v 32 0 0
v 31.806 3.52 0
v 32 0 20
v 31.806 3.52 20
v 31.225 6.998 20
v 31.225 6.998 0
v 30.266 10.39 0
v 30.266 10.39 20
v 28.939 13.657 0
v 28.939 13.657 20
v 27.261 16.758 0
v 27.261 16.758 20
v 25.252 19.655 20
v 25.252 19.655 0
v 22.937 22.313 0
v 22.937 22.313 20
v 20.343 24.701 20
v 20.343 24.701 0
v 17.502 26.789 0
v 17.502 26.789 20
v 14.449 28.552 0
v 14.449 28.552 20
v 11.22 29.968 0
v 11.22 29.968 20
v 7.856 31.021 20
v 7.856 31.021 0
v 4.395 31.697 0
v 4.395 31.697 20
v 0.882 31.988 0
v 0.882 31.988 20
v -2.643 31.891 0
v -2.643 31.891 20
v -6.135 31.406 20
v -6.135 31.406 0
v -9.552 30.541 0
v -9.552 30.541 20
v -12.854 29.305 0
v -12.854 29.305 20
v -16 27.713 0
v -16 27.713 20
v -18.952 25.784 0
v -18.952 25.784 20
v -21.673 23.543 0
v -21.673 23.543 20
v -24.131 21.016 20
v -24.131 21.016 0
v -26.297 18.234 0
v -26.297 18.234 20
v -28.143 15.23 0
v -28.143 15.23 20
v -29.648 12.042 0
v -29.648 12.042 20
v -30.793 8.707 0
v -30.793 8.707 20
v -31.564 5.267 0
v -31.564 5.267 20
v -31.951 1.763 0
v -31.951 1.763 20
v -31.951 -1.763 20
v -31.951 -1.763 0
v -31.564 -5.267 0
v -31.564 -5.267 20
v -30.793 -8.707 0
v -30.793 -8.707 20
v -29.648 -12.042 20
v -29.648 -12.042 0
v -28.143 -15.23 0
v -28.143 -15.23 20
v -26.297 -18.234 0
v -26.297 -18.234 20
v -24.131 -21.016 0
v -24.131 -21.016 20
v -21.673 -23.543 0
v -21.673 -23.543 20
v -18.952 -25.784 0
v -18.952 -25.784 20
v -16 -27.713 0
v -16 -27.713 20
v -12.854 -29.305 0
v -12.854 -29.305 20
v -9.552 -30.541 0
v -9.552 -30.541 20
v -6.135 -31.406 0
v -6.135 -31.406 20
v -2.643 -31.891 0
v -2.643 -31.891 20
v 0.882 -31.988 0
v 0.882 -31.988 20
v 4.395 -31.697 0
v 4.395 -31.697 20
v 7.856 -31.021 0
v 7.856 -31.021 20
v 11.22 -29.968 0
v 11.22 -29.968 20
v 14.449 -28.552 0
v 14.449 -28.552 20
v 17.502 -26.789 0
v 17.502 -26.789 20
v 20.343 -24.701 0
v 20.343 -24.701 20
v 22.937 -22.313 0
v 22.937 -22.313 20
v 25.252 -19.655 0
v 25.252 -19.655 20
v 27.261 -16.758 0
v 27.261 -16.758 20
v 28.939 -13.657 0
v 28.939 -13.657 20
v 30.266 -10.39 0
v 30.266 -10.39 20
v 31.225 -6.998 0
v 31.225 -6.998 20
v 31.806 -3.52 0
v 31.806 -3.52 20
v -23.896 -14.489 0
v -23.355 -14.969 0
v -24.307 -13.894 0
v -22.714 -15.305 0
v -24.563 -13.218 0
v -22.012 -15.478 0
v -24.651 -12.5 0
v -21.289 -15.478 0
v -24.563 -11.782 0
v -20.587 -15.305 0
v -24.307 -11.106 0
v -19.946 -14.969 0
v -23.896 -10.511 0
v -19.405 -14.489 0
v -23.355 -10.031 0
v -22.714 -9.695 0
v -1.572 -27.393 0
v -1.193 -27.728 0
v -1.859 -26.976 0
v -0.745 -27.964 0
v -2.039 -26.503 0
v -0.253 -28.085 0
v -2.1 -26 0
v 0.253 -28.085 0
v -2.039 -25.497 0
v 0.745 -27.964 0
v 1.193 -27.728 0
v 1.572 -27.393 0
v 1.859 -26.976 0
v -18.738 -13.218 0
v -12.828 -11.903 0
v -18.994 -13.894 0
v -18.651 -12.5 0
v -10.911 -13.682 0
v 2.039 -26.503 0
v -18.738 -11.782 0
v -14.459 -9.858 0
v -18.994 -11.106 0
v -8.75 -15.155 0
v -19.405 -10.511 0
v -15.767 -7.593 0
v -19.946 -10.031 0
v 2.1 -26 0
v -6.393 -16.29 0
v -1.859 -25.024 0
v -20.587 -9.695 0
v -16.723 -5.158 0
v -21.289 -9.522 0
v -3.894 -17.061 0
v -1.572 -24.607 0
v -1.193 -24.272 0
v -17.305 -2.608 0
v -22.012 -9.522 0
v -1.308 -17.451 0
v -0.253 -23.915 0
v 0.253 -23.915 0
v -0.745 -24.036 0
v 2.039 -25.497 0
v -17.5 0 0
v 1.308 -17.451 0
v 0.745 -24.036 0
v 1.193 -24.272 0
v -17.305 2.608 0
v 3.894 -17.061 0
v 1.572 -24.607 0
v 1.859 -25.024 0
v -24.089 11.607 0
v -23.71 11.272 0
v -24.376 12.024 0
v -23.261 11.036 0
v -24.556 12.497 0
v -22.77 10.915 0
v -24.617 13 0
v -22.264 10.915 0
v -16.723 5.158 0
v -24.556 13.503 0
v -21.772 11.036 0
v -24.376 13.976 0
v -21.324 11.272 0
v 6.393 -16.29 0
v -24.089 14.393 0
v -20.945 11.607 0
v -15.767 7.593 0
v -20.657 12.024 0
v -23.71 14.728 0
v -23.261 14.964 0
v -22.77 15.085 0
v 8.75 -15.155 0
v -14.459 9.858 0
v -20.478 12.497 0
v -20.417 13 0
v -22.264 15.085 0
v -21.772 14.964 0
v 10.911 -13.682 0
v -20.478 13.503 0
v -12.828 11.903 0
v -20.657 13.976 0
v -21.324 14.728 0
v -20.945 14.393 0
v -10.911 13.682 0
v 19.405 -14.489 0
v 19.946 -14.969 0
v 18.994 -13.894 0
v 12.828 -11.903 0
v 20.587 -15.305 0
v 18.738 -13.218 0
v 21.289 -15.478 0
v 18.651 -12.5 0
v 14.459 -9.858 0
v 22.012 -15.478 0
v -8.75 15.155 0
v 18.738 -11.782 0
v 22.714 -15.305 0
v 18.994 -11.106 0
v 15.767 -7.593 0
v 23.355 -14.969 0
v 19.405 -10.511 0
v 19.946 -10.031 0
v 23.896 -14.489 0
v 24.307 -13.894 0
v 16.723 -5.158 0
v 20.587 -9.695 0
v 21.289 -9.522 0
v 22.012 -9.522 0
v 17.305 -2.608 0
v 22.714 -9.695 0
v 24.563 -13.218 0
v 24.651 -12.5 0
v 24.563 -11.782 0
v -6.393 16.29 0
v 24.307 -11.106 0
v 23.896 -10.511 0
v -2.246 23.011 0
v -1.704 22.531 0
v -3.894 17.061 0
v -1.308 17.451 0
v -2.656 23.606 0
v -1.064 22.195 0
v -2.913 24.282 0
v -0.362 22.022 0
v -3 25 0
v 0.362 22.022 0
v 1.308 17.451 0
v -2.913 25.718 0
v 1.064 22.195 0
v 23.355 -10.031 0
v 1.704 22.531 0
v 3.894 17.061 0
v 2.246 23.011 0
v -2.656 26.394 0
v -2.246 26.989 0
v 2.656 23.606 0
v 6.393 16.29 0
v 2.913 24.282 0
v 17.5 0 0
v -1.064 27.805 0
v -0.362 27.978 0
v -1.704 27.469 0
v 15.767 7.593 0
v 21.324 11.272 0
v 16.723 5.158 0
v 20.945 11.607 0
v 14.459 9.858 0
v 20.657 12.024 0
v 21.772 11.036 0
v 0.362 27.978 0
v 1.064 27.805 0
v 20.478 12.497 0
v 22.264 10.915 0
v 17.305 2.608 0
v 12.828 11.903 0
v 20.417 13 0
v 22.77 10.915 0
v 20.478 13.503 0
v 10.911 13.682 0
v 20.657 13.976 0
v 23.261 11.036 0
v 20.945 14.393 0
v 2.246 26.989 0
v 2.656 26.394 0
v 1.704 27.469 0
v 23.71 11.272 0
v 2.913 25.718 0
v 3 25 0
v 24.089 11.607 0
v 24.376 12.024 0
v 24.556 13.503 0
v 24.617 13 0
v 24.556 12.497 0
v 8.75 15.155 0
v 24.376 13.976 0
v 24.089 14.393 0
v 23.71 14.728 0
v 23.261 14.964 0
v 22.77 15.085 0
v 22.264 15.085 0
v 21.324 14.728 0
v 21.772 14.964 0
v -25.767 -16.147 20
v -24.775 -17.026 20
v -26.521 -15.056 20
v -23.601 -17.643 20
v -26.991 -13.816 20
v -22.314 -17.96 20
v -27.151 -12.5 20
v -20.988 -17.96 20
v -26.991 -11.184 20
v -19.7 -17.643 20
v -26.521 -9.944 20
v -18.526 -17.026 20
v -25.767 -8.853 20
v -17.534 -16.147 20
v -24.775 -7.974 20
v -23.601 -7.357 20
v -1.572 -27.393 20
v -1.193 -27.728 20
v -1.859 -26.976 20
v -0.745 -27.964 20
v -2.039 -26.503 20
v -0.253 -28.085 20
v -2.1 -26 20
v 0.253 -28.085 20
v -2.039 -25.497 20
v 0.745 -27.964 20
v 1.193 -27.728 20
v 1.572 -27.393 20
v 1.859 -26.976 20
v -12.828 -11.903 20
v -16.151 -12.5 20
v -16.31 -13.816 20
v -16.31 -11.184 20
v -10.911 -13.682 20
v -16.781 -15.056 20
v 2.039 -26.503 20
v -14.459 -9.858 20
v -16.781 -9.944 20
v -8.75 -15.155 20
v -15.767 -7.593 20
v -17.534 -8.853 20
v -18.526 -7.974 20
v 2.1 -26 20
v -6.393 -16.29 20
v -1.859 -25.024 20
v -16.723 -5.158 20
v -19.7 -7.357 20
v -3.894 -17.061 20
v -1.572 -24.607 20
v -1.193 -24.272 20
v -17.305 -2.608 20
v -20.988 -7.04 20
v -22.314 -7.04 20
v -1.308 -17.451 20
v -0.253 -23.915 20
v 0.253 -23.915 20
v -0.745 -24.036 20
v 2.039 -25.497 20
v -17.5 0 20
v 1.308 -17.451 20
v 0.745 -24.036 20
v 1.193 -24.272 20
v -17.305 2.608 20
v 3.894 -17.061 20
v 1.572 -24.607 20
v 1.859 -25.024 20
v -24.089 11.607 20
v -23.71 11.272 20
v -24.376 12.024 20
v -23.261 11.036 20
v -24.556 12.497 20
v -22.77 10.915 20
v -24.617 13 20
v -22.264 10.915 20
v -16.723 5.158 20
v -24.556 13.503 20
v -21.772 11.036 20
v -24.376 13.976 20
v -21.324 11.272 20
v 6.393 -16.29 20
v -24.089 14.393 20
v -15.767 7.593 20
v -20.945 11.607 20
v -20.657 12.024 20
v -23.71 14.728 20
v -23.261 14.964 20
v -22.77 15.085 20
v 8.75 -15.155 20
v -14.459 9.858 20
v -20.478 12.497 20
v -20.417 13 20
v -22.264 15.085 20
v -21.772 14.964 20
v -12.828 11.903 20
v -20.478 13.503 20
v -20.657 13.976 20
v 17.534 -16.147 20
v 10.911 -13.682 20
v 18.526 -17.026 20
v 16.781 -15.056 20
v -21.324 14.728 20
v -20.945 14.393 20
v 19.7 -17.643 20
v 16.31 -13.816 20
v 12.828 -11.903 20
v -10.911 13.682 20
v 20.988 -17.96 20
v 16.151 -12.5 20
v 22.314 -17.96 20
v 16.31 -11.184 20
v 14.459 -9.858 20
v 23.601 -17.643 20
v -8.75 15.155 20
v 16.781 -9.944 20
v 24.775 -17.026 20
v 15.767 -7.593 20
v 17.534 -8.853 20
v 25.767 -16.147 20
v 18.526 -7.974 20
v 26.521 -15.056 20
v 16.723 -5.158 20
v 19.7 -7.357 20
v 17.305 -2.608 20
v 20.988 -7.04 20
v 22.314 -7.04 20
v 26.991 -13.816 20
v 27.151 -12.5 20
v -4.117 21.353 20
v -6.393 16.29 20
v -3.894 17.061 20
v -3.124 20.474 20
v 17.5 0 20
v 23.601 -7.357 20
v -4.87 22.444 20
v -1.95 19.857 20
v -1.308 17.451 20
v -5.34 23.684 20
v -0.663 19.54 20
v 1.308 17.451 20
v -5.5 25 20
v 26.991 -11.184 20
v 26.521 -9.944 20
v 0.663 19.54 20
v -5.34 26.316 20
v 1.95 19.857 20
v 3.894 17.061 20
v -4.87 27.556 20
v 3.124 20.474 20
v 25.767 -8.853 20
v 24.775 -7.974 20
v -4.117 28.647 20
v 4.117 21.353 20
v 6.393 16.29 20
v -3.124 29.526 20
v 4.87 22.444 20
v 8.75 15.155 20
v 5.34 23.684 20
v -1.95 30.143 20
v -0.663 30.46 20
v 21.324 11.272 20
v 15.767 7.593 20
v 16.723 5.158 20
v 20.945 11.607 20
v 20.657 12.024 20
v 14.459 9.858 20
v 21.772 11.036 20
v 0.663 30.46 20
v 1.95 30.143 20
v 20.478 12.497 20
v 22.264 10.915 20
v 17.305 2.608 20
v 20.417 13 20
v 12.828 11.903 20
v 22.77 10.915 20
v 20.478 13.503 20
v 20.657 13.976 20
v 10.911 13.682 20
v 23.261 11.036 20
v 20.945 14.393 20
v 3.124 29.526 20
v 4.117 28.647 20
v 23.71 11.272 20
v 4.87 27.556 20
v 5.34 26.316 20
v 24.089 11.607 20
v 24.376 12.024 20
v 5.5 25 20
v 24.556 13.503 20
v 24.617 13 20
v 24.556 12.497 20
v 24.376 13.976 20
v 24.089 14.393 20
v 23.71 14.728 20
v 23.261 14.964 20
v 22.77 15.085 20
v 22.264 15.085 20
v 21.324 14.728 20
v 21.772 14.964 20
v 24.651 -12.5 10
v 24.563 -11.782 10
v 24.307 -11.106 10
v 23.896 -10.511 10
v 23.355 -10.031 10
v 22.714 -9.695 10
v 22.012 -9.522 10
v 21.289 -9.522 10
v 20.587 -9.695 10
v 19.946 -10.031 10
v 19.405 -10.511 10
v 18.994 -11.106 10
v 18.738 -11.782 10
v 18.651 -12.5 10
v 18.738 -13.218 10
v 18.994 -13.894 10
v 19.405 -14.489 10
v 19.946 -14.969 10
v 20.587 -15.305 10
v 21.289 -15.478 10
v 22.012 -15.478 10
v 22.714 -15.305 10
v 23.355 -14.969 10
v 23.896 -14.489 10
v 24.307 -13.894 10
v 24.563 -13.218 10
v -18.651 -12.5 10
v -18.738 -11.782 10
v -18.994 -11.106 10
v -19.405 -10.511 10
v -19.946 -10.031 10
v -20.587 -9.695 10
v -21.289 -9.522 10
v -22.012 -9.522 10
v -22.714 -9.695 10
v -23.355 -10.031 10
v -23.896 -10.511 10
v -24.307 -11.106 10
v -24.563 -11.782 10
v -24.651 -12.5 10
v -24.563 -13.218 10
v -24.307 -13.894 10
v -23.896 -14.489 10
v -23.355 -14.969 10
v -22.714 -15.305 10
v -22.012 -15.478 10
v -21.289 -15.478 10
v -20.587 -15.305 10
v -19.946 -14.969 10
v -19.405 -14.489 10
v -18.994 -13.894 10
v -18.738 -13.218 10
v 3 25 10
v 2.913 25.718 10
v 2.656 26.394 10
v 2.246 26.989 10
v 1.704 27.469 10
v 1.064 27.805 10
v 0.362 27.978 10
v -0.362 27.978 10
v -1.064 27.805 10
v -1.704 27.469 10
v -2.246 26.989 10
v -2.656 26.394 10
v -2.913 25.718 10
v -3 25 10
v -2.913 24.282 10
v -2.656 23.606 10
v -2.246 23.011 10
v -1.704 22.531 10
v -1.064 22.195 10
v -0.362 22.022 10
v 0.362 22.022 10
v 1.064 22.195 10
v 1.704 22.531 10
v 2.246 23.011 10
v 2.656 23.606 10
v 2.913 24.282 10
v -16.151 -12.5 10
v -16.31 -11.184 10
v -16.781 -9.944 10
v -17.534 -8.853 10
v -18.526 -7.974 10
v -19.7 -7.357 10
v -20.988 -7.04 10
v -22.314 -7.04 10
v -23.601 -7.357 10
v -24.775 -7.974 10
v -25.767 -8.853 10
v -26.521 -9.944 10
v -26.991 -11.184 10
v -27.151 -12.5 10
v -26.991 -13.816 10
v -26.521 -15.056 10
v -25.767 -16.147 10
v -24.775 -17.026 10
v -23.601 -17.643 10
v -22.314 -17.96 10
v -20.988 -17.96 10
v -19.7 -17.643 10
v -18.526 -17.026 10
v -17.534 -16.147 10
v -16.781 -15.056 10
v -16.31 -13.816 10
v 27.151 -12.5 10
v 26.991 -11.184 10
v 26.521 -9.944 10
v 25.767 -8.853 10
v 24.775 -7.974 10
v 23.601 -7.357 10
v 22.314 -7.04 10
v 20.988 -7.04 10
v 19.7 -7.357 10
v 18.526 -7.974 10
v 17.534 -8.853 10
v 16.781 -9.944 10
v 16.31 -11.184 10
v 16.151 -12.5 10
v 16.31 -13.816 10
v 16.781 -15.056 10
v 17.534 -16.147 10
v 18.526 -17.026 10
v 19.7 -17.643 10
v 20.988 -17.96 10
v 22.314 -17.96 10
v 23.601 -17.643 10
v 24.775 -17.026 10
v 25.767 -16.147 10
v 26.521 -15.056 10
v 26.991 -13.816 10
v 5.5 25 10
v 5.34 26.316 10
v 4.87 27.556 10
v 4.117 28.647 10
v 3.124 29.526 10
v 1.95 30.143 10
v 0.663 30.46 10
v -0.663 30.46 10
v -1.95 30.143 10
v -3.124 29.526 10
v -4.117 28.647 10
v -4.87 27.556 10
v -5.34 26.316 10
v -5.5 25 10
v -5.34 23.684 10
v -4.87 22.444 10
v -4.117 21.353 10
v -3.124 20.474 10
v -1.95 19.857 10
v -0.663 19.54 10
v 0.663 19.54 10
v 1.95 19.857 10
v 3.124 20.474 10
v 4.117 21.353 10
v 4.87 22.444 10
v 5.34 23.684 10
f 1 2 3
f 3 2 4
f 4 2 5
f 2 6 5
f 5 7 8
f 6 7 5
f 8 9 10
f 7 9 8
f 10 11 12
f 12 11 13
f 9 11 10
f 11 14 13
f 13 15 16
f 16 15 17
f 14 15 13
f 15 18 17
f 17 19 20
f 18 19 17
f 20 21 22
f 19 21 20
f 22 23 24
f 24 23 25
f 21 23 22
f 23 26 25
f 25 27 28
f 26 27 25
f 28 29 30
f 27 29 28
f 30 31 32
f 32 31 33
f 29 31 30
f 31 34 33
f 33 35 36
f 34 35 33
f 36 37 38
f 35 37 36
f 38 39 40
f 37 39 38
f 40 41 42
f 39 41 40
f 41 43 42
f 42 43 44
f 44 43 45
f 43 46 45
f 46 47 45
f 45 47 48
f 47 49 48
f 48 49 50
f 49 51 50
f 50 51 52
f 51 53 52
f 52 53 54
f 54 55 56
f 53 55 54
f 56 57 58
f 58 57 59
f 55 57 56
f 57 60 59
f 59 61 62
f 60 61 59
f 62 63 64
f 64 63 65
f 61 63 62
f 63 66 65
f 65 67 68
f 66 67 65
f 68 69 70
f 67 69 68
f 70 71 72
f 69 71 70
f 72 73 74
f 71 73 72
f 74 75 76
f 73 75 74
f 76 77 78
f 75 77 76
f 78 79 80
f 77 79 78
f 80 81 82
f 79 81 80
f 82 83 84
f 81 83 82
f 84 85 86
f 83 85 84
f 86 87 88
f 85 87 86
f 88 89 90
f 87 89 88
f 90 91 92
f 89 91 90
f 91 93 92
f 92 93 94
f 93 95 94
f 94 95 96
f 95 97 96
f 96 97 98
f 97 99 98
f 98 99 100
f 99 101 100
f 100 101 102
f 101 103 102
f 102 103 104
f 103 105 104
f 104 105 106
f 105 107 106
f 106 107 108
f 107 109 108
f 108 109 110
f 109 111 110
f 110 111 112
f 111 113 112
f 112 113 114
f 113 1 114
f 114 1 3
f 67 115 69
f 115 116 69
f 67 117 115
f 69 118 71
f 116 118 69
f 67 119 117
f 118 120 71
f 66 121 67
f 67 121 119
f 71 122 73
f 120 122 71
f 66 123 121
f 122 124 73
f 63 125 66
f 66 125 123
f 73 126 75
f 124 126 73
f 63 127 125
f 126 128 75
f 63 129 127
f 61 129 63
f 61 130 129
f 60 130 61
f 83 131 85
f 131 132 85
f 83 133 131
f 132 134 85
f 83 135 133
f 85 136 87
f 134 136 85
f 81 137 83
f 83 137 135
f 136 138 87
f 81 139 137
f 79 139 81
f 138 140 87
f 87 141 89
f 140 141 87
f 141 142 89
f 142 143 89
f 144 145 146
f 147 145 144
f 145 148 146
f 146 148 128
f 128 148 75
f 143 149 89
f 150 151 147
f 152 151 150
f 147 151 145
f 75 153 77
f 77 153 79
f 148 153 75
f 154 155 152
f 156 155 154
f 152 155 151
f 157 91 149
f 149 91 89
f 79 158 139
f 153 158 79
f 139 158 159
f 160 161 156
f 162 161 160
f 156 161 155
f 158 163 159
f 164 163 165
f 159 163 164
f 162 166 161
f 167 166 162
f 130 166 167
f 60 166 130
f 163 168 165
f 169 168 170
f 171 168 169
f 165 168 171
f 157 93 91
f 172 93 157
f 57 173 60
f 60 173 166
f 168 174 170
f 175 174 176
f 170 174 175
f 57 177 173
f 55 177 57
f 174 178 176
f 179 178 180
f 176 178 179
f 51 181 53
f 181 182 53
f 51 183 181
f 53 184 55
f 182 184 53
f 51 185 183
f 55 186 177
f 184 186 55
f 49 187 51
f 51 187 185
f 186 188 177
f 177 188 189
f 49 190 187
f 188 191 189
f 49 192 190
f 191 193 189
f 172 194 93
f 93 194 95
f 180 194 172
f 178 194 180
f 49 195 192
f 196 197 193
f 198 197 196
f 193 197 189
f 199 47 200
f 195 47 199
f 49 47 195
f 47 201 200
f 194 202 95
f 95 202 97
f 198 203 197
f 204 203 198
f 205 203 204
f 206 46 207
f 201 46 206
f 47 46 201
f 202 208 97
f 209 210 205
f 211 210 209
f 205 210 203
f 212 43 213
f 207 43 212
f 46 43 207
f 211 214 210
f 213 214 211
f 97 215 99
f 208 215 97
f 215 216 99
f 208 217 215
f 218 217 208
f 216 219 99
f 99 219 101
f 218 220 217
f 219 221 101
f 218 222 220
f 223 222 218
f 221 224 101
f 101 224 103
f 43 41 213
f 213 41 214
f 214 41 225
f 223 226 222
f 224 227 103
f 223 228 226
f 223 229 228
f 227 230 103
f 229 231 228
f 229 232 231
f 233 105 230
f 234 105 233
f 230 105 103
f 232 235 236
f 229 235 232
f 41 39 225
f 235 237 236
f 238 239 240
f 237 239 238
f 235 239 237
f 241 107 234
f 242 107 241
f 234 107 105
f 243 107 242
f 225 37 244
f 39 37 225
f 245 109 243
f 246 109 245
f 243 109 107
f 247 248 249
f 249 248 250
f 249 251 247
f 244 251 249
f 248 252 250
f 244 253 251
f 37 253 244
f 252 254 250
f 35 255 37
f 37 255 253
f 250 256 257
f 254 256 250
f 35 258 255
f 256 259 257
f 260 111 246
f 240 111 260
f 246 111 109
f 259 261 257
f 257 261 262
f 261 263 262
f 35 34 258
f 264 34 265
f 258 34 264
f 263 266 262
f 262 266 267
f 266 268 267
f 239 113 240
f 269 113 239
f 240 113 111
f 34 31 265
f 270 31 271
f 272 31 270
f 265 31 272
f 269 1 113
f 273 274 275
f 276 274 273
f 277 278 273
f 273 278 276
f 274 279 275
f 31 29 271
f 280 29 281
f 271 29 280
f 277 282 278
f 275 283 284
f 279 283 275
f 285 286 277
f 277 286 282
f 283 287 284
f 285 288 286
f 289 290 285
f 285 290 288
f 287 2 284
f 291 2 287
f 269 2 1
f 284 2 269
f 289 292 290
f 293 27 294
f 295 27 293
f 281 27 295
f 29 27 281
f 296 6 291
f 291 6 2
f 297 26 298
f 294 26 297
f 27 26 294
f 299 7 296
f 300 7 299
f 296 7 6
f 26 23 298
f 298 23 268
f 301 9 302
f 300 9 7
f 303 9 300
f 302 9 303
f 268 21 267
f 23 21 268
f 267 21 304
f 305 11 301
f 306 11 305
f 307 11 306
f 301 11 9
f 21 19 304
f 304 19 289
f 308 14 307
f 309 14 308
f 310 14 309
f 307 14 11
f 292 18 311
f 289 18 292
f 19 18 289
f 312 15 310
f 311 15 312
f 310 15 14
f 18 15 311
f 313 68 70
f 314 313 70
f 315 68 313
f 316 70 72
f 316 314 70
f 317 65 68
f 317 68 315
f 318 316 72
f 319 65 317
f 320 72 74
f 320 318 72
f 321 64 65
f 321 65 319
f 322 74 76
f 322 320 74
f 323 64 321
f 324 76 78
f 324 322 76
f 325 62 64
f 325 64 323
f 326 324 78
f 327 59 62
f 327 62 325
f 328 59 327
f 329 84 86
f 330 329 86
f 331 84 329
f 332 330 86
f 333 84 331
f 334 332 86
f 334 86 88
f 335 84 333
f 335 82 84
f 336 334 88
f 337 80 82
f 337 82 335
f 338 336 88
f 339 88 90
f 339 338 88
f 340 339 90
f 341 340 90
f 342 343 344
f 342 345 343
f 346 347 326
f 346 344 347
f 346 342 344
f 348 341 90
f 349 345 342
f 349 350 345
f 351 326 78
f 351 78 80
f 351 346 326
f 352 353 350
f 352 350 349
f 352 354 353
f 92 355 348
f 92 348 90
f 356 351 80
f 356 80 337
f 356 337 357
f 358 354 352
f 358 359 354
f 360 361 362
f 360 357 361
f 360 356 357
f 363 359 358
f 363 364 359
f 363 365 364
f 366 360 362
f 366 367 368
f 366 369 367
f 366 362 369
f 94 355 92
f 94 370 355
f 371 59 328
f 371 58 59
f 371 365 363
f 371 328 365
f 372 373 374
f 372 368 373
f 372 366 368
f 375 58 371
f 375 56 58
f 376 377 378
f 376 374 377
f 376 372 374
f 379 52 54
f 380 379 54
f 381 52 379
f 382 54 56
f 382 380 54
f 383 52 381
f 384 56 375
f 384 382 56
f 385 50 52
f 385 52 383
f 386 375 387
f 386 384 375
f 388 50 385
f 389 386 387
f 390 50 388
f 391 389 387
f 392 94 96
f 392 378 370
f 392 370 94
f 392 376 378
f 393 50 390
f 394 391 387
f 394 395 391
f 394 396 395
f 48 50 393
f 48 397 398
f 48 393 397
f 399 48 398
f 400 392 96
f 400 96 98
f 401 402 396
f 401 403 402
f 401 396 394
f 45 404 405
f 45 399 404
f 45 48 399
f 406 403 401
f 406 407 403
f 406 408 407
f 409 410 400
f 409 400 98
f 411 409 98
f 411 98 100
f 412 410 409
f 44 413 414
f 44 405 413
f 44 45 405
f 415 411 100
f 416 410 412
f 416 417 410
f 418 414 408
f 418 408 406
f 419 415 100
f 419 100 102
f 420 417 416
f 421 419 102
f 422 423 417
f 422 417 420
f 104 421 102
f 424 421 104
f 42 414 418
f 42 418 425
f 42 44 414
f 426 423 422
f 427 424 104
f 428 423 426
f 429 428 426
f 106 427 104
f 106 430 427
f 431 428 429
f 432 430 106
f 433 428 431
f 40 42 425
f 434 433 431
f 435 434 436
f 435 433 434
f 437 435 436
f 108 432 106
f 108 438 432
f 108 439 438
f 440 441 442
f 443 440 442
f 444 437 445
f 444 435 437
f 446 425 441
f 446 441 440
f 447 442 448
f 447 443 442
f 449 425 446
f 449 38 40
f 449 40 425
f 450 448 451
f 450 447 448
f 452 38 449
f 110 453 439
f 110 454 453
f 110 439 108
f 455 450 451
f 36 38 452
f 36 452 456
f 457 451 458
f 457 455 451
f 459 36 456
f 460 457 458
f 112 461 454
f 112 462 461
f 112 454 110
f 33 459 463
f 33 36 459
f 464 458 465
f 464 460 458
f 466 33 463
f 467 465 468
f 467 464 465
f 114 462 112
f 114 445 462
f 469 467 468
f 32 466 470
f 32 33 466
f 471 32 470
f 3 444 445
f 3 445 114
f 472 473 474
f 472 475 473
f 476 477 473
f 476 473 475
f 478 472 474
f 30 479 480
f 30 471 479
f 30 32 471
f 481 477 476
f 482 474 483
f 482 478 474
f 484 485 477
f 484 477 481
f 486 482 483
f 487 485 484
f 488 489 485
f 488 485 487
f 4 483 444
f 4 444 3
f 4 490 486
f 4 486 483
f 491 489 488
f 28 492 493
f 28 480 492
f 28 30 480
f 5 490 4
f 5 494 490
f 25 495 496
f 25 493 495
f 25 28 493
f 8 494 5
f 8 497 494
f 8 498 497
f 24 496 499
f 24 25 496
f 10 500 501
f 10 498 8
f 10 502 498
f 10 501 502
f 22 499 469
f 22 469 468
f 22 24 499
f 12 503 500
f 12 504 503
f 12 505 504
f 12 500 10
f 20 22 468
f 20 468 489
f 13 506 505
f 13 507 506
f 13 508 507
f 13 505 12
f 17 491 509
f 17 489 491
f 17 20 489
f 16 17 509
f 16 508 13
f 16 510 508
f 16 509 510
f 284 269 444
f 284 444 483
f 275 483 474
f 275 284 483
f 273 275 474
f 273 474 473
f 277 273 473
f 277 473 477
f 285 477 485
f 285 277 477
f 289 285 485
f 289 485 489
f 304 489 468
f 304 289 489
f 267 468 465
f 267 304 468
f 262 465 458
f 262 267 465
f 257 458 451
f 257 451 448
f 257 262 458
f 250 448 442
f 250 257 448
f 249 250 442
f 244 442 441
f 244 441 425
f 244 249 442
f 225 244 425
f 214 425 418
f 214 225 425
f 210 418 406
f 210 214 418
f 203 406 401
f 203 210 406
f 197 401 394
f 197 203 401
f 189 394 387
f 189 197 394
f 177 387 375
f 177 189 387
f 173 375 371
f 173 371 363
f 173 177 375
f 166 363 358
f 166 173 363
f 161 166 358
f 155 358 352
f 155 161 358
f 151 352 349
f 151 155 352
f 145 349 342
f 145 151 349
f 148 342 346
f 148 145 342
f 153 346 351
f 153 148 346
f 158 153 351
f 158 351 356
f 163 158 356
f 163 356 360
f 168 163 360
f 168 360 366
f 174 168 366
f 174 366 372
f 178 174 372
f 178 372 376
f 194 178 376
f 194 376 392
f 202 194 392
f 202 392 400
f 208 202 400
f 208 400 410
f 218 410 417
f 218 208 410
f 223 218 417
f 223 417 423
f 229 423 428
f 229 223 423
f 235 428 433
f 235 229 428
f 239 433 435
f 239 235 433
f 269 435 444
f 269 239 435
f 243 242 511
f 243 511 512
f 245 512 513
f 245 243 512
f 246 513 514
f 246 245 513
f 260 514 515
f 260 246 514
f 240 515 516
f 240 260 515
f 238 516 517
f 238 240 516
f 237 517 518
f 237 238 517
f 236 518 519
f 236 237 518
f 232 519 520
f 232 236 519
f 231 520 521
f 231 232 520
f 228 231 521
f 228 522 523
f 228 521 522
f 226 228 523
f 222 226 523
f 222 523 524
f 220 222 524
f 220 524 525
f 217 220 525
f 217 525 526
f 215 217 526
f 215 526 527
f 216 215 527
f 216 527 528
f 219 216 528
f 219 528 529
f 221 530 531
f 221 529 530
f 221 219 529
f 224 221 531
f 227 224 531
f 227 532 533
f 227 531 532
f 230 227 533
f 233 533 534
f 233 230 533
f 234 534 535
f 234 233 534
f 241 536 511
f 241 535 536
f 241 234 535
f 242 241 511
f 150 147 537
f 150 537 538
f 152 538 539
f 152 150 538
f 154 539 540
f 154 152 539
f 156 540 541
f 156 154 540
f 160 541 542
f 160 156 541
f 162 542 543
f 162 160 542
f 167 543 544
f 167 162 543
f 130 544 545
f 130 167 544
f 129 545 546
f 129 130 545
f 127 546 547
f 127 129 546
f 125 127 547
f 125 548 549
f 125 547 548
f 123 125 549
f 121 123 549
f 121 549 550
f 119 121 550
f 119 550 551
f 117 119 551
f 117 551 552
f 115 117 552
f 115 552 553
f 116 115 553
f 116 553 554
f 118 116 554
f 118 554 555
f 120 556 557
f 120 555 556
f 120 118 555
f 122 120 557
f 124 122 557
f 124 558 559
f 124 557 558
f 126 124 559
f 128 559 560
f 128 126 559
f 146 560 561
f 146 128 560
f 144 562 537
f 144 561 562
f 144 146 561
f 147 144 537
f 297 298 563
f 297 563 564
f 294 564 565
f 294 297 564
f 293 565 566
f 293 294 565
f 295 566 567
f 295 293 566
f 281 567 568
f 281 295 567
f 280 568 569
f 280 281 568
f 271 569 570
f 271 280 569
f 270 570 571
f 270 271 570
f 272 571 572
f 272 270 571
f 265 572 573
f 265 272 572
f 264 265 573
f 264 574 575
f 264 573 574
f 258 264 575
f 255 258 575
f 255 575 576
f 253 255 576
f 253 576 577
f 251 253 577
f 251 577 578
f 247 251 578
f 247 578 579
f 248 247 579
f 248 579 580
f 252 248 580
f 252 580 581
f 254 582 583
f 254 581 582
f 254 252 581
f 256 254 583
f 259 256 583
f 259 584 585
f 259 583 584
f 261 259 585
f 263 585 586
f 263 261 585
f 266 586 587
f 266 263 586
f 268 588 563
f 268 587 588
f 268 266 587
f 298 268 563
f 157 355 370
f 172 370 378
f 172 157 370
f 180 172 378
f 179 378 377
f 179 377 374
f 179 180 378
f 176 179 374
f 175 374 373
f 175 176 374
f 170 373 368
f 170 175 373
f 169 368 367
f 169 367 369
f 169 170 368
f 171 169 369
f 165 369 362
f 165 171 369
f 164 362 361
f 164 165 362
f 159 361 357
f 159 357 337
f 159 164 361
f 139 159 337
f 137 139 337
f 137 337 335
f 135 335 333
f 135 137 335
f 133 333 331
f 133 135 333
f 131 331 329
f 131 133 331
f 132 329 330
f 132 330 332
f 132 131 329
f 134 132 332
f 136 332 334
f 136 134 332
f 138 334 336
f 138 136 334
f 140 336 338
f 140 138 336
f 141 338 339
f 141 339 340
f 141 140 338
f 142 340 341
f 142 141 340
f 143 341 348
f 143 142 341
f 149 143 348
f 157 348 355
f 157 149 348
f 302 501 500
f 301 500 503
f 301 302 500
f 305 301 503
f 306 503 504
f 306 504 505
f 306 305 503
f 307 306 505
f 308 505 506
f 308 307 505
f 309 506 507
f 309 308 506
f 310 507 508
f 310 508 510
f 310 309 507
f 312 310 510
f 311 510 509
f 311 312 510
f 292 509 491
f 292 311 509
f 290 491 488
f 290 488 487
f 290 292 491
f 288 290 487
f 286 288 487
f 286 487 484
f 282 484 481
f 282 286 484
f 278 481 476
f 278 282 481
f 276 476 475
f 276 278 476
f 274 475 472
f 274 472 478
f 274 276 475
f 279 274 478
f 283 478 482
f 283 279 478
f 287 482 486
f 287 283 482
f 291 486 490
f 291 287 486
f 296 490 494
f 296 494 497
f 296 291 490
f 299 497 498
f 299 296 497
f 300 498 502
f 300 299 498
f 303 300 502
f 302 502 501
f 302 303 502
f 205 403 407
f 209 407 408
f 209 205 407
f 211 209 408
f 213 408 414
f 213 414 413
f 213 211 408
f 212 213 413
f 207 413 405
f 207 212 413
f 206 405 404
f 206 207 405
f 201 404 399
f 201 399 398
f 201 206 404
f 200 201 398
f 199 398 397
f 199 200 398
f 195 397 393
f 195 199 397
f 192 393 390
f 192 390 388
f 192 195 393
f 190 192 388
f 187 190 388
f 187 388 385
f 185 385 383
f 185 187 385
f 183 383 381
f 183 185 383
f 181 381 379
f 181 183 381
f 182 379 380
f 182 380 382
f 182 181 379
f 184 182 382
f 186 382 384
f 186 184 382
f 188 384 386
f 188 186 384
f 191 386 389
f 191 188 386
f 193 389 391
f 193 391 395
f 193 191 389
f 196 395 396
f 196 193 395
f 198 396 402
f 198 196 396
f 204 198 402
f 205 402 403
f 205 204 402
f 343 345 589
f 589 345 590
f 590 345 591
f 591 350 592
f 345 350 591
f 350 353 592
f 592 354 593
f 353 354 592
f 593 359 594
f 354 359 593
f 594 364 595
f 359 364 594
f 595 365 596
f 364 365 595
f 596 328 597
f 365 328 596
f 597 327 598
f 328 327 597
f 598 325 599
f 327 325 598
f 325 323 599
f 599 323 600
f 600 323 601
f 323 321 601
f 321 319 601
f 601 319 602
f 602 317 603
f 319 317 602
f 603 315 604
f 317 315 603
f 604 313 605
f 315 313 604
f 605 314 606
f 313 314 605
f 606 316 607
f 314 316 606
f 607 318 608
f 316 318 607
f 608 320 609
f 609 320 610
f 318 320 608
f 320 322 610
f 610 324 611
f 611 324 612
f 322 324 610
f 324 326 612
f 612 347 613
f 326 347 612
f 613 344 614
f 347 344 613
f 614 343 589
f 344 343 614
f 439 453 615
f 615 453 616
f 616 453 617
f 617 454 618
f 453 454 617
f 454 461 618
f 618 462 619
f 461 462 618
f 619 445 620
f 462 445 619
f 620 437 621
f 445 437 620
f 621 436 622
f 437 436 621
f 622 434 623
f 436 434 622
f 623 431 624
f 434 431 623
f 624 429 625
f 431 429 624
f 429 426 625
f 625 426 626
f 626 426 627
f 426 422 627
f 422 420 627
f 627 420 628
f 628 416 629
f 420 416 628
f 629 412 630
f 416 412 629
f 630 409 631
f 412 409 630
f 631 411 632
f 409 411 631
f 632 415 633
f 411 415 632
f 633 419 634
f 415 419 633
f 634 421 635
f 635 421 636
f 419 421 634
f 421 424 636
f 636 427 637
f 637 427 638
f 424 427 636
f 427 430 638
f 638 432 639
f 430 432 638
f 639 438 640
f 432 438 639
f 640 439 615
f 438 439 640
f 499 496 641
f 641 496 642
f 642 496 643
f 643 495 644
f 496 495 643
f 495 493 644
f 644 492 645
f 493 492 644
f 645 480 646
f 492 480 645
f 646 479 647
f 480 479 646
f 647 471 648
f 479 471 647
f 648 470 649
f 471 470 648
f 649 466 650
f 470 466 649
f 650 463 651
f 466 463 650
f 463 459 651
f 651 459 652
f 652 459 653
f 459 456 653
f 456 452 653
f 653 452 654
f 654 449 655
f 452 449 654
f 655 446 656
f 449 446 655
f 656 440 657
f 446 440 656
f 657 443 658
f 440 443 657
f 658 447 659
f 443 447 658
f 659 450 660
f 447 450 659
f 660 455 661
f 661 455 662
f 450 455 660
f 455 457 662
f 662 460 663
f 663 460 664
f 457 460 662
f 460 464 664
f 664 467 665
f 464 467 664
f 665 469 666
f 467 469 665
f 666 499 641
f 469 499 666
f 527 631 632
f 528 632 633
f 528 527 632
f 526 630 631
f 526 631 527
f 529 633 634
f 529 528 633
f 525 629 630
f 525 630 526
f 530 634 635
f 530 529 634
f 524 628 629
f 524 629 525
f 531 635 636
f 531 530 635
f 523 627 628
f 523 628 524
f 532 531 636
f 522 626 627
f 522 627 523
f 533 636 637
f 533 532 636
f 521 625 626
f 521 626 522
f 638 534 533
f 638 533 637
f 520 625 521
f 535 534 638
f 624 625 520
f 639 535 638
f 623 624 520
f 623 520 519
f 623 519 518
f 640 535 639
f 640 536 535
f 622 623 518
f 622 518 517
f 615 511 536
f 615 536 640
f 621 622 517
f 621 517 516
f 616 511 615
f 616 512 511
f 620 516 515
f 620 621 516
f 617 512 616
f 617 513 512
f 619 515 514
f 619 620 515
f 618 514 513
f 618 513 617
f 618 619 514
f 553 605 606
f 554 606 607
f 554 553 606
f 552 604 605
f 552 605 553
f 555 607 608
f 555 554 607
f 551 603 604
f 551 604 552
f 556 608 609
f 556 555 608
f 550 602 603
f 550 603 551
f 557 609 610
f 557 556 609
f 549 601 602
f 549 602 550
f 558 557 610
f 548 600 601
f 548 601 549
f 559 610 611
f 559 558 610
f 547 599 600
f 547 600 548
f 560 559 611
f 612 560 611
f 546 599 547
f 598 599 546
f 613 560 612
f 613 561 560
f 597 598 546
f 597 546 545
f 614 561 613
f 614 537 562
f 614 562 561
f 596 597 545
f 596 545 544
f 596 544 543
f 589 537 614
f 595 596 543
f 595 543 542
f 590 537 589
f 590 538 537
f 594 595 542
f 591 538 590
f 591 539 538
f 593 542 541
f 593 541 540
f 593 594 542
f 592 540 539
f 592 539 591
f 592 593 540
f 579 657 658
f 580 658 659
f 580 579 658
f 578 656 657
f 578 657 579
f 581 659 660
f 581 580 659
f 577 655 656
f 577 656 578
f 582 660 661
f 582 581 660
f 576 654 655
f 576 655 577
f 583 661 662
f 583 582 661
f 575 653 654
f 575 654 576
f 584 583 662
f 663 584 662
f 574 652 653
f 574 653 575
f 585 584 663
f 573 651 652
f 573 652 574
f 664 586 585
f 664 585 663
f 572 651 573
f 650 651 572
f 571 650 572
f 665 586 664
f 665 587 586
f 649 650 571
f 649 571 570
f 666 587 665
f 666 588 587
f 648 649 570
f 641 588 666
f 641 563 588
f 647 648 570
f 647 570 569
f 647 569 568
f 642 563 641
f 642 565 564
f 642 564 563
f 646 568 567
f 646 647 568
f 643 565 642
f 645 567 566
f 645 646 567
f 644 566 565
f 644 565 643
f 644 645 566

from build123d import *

# Parameters (mm, degrees)
SKETCH_R     = 32
SKETCH_R_2   = 2.1
SKETCH_R_3   = 3
SKETCH_R_4   = 17.5
PAD_DEPTH    = 20
SKETCH001_R  = 5.5
POCKET_DEPTH = 10


with BuildPart() as part:
    # Sketch → Pad (new body)
    with BuildSketch(Plane.XY):
        Circle(SKETCH_R)
        with Locations((0, -26)):
            Circle(SKETCH_R_2, mode=Mode.SUBTRACT)
        with Locations((-22.51666, 13)):
            Circle(SKETCH_R_2, mode=Mode.SUBTRACT)
        with Locations((22.51666, 13)):
            Circle(SKETCH_R_2, mode=Mode.SUBTRACT)
        with Locations((0, 25)):
            Circle(SKETCH_R_3, mode=Mode.SUBTRACT)
        with Locations((-21.650635, -12.5)):
            Circle(SKETCH_R_3, mode=Mode.SUBTRACT)
        with Locations((21.650635, -12.5)):
            Circle(SKETCH_R_3, mode=Mode.SUBTRACT)
        Circle(SKETCH_R_4, mode=Mode.SUBTRACT)
    extrude(amount=PAD_DEPTH)

    # Sketch001 (on Face10 of Pad) → Pocket (cut)
    with BuildSketch(Plane.XY.offset(20)):
        with Locations((0, 25)):
            Circle(SKETCH001_R)
        with Locations((-21.650635, -12.5)):
            Circle(SKETCH001_R)
        with Locations((21.650635, -12.5)):
            Circle(SKETCH001_R)
    extrude(amount=-POCKET_DEPTH, mode=Mode.SUBTRACT)


solid = part.part
